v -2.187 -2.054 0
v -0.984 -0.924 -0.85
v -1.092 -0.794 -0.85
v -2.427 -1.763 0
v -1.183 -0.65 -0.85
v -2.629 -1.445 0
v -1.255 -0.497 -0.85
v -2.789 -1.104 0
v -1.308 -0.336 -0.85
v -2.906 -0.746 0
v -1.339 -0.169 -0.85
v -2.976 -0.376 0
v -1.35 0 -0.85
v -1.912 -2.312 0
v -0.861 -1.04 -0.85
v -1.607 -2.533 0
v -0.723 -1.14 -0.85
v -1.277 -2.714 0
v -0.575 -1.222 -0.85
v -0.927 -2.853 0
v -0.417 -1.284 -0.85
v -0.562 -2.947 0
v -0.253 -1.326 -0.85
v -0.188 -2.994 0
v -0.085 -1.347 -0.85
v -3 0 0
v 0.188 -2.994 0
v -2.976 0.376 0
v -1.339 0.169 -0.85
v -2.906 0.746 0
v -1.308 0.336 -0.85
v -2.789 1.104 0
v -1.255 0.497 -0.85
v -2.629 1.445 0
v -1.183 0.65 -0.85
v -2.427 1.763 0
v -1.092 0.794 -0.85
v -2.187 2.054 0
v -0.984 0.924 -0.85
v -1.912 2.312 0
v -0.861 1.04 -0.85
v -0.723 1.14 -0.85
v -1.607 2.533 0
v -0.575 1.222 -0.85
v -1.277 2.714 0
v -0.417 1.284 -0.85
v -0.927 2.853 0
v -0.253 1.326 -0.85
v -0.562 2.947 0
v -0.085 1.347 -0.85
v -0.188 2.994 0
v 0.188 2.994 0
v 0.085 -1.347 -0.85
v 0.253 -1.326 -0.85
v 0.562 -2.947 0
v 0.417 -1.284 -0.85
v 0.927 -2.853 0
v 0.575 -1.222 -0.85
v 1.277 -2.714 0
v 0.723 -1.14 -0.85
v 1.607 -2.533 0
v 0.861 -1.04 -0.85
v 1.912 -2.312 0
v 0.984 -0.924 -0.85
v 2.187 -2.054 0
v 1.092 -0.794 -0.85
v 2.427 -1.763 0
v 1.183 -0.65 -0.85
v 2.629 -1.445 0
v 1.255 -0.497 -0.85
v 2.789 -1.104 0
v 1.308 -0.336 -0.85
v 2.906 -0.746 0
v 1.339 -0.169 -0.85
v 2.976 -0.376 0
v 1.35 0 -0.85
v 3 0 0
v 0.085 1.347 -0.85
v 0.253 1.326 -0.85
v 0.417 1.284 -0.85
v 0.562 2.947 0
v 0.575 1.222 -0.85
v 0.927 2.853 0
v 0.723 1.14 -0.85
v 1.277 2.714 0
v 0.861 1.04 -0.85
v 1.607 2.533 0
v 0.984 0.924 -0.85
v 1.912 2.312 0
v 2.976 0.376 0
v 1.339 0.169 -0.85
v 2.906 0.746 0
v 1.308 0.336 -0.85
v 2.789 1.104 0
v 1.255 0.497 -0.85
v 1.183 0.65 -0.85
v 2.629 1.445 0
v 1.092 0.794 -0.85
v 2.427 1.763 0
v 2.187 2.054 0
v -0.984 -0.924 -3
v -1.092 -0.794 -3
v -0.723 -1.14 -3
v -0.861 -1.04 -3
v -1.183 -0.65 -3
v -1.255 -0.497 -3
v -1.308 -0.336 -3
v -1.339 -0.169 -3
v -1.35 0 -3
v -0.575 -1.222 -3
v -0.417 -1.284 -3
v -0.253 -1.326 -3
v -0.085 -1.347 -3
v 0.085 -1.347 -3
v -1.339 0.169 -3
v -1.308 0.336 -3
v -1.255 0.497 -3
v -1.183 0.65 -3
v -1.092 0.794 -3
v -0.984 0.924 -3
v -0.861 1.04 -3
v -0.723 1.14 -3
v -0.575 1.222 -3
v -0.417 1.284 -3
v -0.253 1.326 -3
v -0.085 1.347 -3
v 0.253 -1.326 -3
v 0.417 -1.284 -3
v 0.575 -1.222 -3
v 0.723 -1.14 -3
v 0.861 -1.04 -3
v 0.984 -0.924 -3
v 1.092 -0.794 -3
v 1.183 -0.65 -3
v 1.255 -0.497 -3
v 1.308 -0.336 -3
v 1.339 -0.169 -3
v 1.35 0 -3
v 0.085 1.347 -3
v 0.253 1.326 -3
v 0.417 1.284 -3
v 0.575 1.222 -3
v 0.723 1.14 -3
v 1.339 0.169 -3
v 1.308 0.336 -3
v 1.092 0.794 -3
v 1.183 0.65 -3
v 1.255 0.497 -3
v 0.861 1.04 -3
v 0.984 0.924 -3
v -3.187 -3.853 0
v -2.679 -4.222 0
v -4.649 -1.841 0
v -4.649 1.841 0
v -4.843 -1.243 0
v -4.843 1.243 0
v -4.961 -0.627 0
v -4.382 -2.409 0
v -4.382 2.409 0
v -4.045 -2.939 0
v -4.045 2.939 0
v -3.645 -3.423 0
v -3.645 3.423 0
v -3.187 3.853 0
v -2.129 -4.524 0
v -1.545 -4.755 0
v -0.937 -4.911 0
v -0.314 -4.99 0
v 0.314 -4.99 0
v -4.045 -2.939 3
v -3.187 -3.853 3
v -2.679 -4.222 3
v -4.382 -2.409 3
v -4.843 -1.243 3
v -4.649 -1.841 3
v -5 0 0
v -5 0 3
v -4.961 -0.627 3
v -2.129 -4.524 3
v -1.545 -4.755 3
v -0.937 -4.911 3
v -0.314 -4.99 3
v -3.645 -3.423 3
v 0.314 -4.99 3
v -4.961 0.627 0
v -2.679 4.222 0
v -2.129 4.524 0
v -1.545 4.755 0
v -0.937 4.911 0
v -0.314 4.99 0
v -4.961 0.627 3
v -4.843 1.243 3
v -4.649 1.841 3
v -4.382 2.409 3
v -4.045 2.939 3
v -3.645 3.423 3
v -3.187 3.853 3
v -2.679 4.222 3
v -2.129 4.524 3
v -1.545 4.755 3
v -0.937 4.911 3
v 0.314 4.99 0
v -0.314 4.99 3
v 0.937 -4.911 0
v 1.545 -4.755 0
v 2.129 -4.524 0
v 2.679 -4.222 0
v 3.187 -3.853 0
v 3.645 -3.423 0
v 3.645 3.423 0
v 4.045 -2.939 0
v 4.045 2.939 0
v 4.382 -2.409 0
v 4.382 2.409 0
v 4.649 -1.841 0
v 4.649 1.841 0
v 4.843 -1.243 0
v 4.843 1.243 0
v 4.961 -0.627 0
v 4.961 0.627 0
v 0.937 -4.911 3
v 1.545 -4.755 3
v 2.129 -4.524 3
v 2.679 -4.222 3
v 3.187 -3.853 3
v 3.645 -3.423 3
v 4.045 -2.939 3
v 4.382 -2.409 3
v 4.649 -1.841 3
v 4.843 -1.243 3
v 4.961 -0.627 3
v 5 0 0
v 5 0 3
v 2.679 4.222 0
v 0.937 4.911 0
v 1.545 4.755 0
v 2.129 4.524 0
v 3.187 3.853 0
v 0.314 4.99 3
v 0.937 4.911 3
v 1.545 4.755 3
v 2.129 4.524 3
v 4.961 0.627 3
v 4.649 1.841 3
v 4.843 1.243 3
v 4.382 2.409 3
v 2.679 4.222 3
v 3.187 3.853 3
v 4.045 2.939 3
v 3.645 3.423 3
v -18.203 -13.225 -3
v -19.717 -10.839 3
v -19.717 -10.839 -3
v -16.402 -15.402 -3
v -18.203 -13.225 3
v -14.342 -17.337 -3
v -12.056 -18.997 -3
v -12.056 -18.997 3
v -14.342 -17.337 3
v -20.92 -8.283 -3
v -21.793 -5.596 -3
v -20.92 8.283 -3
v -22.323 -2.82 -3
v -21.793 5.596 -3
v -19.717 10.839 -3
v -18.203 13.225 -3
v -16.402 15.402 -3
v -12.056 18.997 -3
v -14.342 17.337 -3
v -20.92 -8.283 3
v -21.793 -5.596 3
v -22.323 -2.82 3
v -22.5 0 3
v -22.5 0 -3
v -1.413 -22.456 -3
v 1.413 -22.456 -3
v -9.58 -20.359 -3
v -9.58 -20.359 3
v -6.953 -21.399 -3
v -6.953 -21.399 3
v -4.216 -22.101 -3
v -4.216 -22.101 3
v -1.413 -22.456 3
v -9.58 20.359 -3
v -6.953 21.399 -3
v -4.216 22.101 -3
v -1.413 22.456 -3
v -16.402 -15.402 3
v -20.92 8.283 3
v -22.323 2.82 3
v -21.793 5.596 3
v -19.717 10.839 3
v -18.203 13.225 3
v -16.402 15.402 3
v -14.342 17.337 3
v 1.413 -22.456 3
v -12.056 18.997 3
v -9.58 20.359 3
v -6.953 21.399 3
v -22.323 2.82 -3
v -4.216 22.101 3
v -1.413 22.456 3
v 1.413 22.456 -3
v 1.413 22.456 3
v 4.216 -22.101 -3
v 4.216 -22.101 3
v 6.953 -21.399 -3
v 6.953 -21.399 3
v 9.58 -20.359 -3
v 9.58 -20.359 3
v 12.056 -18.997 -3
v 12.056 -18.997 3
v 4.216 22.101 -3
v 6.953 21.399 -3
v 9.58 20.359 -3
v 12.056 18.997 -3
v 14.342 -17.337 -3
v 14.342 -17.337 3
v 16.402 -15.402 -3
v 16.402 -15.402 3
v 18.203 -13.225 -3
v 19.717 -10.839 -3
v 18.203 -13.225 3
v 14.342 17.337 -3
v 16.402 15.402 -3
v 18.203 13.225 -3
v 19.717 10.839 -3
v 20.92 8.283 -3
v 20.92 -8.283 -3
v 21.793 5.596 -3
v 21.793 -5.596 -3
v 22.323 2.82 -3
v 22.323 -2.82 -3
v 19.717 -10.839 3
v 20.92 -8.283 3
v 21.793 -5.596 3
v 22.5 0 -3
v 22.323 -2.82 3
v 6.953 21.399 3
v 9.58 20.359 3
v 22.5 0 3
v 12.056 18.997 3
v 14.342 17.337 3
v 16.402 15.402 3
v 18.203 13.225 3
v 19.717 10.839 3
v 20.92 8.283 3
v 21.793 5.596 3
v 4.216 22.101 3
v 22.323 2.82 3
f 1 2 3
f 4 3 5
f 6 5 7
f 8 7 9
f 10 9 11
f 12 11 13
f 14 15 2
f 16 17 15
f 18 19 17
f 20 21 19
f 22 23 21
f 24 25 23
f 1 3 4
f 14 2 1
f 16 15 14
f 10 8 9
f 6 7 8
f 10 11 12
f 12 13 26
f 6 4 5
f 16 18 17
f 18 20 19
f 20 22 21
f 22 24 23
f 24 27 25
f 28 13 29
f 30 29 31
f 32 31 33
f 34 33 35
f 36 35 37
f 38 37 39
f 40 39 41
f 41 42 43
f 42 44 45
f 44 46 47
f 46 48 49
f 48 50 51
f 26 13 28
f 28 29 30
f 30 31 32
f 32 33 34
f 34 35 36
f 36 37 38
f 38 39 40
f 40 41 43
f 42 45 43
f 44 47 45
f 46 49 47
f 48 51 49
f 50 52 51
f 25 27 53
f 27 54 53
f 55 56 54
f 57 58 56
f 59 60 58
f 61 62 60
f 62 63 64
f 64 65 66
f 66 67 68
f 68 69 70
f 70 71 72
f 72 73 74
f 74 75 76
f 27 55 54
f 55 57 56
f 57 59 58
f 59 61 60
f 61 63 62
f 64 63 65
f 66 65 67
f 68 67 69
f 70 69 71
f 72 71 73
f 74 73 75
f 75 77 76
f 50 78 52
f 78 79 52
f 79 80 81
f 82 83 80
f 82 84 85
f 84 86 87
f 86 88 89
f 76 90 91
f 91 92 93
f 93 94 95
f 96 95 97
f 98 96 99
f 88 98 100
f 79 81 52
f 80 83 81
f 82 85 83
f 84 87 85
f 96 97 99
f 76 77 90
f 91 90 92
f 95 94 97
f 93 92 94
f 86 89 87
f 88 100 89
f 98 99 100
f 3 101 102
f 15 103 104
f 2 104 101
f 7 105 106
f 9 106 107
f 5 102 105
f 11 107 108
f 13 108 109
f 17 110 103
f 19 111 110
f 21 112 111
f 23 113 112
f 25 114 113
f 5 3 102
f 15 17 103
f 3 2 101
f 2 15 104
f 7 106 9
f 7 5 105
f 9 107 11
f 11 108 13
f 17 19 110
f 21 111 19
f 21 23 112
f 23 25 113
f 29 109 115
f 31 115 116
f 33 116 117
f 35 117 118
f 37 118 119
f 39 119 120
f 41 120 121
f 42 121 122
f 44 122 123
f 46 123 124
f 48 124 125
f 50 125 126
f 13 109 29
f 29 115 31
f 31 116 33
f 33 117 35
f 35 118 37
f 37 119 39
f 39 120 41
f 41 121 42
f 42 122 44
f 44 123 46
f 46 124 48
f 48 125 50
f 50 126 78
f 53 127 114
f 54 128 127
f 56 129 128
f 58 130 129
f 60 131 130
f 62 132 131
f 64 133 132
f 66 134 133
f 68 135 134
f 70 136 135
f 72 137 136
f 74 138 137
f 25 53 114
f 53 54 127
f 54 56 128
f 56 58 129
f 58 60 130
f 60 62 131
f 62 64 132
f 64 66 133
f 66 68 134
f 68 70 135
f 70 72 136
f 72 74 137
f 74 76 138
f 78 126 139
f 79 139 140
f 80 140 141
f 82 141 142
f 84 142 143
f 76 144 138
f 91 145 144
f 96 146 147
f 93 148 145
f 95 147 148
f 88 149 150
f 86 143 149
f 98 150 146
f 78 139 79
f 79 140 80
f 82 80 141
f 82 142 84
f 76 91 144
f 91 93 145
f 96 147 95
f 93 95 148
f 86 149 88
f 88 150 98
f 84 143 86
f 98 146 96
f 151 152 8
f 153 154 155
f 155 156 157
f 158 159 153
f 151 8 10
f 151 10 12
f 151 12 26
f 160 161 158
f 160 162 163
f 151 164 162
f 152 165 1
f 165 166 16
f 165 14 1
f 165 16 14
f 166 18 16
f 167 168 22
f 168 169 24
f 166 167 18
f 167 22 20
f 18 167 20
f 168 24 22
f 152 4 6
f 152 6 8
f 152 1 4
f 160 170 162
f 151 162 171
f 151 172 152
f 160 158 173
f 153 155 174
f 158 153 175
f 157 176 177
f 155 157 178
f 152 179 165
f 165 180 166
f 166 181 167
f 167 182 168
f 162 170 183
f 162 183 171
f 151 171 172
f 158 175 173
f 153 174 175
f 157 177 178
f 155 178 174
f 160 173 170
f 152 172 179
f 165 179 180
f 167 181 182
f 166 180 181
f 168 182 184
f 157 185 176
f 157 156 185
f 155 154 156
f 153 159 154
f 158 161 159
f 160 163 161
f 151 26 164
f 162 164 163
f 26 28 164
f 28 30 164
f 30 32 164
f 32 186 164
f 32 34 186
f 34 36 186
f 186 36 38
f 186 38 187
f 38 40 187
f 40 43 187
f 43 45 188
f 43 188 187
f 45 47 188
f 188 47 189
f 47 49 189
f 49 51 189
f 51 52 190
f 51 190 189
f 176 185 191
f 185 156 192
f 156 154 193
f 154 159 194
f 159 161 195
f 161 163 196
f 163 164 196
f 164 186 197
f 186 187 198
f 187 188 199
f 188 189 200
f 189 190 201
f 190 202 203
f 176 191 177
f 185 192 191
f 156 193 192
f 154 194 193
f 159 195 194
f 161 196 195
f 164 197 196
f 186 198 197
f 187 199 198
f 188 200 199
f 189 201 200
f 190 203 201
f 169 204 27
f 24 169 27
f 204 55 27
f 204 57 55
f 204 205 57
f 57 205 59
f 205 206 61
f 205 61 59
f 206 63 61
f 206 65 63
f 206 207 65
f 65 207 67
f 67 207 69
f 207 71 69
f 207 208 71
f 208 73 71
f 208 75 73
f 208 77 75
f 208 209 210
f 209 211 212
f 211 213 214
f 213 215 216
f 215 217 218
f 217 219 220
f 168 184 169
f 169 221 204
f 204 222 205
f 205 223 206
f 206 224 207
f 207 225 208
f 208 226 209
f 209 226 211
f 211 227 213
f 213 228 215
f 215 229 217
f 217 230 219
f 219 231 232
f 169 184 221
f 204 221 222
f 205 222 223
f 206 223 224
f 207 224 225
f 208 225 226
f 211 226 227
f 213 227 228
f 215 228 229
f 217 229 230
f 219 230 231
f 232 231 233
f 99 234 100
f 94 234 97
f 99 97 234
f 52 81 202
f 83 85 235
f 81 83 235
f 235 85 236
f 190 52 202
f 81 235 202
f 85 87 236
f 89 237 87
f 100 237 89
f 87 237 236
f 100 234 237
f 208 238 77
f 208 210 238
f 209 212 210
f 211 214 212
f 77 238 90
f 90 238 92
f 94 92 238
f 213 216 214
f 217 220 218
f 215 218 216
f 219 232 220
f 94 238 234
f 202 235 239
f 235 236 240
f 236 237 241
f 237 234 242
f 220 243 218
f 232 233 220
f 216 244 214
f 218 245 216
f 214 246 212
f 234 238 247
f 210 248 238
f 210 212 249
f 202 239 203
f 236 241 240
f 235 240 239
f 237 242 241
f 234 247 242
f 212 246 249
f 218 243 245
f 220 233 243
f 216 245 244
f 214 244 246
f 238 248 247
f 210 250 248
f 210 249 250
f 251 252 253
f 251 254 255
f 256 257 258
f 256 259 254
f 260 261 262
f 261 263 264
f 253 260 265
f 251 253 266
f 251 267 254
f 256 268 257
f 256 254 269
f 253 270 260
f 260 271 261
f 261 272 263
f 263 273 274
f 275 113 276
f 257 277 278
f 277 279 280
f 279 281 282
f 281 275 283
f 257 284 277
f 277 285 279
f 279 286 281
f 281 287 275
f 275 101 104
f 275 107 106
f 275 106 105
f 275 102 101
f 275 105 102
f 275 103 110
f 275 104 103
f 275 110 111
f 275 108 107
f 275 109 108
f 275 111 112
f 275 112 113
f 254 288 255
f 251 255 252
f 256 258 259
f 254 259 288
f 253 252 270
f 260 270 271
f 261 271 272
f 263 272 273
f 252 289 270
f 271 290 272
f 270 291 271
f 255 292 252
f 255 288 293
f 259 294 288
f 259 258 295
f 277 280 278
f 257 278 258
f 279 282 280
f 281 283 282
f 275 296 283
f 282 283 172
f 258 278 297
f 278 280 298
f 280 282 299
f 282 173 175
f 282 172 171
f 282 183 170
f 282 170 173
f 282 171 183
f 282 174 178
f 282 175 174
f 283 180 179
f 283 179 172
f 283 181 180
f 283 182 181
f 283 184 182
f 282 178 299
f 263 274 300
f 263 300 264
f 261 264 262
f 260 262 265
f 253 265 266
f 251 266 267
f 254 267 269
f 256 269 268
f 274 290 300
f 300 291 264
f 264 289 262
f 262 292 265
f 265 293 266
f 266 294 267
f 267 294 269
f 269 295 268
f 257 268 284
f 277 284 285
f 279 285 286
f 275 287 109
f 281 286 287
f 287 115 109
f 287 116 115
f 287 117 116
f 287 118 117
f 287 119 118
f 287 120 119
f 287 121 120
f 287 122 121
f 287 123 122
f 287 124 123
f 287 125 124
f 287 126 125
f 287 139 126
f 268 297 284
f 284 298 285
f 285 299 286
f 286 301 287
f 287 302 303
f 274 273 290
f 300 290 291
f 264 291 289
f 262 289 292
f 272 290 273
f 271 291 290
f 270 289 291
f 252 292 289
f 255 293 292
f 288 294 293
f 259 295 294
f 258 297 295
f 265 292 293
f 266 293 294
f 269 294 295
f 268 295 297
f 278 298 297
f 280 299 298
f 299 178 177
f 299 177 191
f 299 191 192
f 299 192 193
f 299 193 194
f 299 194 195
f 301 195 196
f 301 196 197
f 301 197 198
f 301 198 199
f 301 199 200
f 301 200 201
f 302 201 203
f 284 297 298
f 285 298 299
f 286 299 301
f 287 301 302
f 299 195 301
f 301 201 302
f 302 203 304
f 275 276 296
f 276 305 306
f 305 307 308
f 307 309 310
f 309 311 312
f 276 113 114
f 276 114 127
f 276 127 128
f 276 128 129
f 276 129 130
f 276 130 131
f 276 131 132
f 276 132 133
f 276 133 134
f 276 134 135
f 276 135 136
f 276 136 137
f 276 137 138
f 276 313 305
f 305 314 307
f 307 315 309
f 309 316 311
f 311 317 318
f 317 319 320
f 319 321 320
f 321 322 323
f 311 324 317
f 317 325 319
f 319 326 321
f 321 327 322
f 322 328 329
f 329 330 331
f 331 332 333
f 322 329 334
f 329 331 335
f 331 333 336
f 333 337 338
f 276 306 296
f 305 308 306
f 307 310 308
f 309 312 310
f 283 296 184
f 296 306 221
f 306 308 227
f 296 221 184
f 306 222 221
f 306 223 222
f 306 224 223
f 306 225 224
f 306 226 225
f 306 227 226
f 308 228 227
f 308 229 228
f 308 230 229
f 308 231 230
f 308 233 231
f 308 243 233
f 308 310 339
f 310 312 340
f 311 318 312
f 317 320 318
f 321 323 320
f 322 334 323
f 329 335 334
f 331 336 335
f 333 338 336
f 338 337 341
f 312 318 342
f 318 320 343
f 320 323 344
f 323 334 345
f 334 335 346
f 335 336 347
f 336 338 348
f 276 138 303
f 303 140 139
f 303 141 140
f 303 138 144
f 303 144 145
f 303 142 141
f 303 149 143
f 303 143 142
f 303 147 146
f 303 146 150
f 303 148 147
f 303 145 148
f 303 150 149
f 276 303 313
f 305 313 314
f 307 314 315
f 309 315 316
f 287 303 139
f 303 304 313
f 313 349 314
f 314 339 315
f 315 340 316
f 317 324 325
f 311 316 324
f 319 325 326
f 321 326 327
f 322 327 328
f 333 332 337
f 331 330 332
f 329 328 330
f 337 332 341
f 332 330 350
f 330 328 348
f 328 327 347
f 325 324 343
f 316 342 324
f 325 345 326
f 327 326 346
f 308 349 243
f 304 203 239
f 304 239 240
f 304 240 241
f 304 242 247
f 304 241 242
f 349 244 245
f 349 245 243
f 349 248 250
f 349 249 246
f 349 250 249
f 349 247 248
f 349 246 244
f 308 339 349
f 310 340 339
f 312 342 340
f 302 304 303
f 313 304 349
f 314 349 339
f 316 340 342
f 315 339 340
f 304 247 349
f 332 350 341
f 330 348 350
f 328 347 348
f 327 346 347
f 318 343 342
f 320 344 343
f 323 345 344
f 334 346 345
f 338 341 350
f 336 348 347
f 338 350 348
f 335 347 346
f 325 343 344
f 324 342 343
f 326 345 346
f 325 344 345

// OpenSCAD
$fn = 50;

difference() {
	union() {
		translate(v = [0, 0, -3.0]) {
			cylinder(h = 6, r = 22.5);
		}
	}
	union() {
		translate(v = [0, 0, 0]) {
			rotate(a = [0, 0, 0]) {
				difference() {
					union() {
						translate(v = [0, 0, -6.0]) {
							cylinder(h = 6, r = 1.0);
						}
						translate(v = [0, 0, -0.85]) {
							cylinder(h = 0.85, r1 = 1.35, r2 = 3.0);
						}
						translate(v = [0, 0, -6.0]) {
							cylinder(h = 6, r = 1.35);
						}
						translate(v = [0, 0, -6.0]) {
							cylinder(h = 6, r = 1.0);
						}
					}
					union();
				}
			}
		}
		#cylinder(h = 3, r = 5.0);
	}
}
